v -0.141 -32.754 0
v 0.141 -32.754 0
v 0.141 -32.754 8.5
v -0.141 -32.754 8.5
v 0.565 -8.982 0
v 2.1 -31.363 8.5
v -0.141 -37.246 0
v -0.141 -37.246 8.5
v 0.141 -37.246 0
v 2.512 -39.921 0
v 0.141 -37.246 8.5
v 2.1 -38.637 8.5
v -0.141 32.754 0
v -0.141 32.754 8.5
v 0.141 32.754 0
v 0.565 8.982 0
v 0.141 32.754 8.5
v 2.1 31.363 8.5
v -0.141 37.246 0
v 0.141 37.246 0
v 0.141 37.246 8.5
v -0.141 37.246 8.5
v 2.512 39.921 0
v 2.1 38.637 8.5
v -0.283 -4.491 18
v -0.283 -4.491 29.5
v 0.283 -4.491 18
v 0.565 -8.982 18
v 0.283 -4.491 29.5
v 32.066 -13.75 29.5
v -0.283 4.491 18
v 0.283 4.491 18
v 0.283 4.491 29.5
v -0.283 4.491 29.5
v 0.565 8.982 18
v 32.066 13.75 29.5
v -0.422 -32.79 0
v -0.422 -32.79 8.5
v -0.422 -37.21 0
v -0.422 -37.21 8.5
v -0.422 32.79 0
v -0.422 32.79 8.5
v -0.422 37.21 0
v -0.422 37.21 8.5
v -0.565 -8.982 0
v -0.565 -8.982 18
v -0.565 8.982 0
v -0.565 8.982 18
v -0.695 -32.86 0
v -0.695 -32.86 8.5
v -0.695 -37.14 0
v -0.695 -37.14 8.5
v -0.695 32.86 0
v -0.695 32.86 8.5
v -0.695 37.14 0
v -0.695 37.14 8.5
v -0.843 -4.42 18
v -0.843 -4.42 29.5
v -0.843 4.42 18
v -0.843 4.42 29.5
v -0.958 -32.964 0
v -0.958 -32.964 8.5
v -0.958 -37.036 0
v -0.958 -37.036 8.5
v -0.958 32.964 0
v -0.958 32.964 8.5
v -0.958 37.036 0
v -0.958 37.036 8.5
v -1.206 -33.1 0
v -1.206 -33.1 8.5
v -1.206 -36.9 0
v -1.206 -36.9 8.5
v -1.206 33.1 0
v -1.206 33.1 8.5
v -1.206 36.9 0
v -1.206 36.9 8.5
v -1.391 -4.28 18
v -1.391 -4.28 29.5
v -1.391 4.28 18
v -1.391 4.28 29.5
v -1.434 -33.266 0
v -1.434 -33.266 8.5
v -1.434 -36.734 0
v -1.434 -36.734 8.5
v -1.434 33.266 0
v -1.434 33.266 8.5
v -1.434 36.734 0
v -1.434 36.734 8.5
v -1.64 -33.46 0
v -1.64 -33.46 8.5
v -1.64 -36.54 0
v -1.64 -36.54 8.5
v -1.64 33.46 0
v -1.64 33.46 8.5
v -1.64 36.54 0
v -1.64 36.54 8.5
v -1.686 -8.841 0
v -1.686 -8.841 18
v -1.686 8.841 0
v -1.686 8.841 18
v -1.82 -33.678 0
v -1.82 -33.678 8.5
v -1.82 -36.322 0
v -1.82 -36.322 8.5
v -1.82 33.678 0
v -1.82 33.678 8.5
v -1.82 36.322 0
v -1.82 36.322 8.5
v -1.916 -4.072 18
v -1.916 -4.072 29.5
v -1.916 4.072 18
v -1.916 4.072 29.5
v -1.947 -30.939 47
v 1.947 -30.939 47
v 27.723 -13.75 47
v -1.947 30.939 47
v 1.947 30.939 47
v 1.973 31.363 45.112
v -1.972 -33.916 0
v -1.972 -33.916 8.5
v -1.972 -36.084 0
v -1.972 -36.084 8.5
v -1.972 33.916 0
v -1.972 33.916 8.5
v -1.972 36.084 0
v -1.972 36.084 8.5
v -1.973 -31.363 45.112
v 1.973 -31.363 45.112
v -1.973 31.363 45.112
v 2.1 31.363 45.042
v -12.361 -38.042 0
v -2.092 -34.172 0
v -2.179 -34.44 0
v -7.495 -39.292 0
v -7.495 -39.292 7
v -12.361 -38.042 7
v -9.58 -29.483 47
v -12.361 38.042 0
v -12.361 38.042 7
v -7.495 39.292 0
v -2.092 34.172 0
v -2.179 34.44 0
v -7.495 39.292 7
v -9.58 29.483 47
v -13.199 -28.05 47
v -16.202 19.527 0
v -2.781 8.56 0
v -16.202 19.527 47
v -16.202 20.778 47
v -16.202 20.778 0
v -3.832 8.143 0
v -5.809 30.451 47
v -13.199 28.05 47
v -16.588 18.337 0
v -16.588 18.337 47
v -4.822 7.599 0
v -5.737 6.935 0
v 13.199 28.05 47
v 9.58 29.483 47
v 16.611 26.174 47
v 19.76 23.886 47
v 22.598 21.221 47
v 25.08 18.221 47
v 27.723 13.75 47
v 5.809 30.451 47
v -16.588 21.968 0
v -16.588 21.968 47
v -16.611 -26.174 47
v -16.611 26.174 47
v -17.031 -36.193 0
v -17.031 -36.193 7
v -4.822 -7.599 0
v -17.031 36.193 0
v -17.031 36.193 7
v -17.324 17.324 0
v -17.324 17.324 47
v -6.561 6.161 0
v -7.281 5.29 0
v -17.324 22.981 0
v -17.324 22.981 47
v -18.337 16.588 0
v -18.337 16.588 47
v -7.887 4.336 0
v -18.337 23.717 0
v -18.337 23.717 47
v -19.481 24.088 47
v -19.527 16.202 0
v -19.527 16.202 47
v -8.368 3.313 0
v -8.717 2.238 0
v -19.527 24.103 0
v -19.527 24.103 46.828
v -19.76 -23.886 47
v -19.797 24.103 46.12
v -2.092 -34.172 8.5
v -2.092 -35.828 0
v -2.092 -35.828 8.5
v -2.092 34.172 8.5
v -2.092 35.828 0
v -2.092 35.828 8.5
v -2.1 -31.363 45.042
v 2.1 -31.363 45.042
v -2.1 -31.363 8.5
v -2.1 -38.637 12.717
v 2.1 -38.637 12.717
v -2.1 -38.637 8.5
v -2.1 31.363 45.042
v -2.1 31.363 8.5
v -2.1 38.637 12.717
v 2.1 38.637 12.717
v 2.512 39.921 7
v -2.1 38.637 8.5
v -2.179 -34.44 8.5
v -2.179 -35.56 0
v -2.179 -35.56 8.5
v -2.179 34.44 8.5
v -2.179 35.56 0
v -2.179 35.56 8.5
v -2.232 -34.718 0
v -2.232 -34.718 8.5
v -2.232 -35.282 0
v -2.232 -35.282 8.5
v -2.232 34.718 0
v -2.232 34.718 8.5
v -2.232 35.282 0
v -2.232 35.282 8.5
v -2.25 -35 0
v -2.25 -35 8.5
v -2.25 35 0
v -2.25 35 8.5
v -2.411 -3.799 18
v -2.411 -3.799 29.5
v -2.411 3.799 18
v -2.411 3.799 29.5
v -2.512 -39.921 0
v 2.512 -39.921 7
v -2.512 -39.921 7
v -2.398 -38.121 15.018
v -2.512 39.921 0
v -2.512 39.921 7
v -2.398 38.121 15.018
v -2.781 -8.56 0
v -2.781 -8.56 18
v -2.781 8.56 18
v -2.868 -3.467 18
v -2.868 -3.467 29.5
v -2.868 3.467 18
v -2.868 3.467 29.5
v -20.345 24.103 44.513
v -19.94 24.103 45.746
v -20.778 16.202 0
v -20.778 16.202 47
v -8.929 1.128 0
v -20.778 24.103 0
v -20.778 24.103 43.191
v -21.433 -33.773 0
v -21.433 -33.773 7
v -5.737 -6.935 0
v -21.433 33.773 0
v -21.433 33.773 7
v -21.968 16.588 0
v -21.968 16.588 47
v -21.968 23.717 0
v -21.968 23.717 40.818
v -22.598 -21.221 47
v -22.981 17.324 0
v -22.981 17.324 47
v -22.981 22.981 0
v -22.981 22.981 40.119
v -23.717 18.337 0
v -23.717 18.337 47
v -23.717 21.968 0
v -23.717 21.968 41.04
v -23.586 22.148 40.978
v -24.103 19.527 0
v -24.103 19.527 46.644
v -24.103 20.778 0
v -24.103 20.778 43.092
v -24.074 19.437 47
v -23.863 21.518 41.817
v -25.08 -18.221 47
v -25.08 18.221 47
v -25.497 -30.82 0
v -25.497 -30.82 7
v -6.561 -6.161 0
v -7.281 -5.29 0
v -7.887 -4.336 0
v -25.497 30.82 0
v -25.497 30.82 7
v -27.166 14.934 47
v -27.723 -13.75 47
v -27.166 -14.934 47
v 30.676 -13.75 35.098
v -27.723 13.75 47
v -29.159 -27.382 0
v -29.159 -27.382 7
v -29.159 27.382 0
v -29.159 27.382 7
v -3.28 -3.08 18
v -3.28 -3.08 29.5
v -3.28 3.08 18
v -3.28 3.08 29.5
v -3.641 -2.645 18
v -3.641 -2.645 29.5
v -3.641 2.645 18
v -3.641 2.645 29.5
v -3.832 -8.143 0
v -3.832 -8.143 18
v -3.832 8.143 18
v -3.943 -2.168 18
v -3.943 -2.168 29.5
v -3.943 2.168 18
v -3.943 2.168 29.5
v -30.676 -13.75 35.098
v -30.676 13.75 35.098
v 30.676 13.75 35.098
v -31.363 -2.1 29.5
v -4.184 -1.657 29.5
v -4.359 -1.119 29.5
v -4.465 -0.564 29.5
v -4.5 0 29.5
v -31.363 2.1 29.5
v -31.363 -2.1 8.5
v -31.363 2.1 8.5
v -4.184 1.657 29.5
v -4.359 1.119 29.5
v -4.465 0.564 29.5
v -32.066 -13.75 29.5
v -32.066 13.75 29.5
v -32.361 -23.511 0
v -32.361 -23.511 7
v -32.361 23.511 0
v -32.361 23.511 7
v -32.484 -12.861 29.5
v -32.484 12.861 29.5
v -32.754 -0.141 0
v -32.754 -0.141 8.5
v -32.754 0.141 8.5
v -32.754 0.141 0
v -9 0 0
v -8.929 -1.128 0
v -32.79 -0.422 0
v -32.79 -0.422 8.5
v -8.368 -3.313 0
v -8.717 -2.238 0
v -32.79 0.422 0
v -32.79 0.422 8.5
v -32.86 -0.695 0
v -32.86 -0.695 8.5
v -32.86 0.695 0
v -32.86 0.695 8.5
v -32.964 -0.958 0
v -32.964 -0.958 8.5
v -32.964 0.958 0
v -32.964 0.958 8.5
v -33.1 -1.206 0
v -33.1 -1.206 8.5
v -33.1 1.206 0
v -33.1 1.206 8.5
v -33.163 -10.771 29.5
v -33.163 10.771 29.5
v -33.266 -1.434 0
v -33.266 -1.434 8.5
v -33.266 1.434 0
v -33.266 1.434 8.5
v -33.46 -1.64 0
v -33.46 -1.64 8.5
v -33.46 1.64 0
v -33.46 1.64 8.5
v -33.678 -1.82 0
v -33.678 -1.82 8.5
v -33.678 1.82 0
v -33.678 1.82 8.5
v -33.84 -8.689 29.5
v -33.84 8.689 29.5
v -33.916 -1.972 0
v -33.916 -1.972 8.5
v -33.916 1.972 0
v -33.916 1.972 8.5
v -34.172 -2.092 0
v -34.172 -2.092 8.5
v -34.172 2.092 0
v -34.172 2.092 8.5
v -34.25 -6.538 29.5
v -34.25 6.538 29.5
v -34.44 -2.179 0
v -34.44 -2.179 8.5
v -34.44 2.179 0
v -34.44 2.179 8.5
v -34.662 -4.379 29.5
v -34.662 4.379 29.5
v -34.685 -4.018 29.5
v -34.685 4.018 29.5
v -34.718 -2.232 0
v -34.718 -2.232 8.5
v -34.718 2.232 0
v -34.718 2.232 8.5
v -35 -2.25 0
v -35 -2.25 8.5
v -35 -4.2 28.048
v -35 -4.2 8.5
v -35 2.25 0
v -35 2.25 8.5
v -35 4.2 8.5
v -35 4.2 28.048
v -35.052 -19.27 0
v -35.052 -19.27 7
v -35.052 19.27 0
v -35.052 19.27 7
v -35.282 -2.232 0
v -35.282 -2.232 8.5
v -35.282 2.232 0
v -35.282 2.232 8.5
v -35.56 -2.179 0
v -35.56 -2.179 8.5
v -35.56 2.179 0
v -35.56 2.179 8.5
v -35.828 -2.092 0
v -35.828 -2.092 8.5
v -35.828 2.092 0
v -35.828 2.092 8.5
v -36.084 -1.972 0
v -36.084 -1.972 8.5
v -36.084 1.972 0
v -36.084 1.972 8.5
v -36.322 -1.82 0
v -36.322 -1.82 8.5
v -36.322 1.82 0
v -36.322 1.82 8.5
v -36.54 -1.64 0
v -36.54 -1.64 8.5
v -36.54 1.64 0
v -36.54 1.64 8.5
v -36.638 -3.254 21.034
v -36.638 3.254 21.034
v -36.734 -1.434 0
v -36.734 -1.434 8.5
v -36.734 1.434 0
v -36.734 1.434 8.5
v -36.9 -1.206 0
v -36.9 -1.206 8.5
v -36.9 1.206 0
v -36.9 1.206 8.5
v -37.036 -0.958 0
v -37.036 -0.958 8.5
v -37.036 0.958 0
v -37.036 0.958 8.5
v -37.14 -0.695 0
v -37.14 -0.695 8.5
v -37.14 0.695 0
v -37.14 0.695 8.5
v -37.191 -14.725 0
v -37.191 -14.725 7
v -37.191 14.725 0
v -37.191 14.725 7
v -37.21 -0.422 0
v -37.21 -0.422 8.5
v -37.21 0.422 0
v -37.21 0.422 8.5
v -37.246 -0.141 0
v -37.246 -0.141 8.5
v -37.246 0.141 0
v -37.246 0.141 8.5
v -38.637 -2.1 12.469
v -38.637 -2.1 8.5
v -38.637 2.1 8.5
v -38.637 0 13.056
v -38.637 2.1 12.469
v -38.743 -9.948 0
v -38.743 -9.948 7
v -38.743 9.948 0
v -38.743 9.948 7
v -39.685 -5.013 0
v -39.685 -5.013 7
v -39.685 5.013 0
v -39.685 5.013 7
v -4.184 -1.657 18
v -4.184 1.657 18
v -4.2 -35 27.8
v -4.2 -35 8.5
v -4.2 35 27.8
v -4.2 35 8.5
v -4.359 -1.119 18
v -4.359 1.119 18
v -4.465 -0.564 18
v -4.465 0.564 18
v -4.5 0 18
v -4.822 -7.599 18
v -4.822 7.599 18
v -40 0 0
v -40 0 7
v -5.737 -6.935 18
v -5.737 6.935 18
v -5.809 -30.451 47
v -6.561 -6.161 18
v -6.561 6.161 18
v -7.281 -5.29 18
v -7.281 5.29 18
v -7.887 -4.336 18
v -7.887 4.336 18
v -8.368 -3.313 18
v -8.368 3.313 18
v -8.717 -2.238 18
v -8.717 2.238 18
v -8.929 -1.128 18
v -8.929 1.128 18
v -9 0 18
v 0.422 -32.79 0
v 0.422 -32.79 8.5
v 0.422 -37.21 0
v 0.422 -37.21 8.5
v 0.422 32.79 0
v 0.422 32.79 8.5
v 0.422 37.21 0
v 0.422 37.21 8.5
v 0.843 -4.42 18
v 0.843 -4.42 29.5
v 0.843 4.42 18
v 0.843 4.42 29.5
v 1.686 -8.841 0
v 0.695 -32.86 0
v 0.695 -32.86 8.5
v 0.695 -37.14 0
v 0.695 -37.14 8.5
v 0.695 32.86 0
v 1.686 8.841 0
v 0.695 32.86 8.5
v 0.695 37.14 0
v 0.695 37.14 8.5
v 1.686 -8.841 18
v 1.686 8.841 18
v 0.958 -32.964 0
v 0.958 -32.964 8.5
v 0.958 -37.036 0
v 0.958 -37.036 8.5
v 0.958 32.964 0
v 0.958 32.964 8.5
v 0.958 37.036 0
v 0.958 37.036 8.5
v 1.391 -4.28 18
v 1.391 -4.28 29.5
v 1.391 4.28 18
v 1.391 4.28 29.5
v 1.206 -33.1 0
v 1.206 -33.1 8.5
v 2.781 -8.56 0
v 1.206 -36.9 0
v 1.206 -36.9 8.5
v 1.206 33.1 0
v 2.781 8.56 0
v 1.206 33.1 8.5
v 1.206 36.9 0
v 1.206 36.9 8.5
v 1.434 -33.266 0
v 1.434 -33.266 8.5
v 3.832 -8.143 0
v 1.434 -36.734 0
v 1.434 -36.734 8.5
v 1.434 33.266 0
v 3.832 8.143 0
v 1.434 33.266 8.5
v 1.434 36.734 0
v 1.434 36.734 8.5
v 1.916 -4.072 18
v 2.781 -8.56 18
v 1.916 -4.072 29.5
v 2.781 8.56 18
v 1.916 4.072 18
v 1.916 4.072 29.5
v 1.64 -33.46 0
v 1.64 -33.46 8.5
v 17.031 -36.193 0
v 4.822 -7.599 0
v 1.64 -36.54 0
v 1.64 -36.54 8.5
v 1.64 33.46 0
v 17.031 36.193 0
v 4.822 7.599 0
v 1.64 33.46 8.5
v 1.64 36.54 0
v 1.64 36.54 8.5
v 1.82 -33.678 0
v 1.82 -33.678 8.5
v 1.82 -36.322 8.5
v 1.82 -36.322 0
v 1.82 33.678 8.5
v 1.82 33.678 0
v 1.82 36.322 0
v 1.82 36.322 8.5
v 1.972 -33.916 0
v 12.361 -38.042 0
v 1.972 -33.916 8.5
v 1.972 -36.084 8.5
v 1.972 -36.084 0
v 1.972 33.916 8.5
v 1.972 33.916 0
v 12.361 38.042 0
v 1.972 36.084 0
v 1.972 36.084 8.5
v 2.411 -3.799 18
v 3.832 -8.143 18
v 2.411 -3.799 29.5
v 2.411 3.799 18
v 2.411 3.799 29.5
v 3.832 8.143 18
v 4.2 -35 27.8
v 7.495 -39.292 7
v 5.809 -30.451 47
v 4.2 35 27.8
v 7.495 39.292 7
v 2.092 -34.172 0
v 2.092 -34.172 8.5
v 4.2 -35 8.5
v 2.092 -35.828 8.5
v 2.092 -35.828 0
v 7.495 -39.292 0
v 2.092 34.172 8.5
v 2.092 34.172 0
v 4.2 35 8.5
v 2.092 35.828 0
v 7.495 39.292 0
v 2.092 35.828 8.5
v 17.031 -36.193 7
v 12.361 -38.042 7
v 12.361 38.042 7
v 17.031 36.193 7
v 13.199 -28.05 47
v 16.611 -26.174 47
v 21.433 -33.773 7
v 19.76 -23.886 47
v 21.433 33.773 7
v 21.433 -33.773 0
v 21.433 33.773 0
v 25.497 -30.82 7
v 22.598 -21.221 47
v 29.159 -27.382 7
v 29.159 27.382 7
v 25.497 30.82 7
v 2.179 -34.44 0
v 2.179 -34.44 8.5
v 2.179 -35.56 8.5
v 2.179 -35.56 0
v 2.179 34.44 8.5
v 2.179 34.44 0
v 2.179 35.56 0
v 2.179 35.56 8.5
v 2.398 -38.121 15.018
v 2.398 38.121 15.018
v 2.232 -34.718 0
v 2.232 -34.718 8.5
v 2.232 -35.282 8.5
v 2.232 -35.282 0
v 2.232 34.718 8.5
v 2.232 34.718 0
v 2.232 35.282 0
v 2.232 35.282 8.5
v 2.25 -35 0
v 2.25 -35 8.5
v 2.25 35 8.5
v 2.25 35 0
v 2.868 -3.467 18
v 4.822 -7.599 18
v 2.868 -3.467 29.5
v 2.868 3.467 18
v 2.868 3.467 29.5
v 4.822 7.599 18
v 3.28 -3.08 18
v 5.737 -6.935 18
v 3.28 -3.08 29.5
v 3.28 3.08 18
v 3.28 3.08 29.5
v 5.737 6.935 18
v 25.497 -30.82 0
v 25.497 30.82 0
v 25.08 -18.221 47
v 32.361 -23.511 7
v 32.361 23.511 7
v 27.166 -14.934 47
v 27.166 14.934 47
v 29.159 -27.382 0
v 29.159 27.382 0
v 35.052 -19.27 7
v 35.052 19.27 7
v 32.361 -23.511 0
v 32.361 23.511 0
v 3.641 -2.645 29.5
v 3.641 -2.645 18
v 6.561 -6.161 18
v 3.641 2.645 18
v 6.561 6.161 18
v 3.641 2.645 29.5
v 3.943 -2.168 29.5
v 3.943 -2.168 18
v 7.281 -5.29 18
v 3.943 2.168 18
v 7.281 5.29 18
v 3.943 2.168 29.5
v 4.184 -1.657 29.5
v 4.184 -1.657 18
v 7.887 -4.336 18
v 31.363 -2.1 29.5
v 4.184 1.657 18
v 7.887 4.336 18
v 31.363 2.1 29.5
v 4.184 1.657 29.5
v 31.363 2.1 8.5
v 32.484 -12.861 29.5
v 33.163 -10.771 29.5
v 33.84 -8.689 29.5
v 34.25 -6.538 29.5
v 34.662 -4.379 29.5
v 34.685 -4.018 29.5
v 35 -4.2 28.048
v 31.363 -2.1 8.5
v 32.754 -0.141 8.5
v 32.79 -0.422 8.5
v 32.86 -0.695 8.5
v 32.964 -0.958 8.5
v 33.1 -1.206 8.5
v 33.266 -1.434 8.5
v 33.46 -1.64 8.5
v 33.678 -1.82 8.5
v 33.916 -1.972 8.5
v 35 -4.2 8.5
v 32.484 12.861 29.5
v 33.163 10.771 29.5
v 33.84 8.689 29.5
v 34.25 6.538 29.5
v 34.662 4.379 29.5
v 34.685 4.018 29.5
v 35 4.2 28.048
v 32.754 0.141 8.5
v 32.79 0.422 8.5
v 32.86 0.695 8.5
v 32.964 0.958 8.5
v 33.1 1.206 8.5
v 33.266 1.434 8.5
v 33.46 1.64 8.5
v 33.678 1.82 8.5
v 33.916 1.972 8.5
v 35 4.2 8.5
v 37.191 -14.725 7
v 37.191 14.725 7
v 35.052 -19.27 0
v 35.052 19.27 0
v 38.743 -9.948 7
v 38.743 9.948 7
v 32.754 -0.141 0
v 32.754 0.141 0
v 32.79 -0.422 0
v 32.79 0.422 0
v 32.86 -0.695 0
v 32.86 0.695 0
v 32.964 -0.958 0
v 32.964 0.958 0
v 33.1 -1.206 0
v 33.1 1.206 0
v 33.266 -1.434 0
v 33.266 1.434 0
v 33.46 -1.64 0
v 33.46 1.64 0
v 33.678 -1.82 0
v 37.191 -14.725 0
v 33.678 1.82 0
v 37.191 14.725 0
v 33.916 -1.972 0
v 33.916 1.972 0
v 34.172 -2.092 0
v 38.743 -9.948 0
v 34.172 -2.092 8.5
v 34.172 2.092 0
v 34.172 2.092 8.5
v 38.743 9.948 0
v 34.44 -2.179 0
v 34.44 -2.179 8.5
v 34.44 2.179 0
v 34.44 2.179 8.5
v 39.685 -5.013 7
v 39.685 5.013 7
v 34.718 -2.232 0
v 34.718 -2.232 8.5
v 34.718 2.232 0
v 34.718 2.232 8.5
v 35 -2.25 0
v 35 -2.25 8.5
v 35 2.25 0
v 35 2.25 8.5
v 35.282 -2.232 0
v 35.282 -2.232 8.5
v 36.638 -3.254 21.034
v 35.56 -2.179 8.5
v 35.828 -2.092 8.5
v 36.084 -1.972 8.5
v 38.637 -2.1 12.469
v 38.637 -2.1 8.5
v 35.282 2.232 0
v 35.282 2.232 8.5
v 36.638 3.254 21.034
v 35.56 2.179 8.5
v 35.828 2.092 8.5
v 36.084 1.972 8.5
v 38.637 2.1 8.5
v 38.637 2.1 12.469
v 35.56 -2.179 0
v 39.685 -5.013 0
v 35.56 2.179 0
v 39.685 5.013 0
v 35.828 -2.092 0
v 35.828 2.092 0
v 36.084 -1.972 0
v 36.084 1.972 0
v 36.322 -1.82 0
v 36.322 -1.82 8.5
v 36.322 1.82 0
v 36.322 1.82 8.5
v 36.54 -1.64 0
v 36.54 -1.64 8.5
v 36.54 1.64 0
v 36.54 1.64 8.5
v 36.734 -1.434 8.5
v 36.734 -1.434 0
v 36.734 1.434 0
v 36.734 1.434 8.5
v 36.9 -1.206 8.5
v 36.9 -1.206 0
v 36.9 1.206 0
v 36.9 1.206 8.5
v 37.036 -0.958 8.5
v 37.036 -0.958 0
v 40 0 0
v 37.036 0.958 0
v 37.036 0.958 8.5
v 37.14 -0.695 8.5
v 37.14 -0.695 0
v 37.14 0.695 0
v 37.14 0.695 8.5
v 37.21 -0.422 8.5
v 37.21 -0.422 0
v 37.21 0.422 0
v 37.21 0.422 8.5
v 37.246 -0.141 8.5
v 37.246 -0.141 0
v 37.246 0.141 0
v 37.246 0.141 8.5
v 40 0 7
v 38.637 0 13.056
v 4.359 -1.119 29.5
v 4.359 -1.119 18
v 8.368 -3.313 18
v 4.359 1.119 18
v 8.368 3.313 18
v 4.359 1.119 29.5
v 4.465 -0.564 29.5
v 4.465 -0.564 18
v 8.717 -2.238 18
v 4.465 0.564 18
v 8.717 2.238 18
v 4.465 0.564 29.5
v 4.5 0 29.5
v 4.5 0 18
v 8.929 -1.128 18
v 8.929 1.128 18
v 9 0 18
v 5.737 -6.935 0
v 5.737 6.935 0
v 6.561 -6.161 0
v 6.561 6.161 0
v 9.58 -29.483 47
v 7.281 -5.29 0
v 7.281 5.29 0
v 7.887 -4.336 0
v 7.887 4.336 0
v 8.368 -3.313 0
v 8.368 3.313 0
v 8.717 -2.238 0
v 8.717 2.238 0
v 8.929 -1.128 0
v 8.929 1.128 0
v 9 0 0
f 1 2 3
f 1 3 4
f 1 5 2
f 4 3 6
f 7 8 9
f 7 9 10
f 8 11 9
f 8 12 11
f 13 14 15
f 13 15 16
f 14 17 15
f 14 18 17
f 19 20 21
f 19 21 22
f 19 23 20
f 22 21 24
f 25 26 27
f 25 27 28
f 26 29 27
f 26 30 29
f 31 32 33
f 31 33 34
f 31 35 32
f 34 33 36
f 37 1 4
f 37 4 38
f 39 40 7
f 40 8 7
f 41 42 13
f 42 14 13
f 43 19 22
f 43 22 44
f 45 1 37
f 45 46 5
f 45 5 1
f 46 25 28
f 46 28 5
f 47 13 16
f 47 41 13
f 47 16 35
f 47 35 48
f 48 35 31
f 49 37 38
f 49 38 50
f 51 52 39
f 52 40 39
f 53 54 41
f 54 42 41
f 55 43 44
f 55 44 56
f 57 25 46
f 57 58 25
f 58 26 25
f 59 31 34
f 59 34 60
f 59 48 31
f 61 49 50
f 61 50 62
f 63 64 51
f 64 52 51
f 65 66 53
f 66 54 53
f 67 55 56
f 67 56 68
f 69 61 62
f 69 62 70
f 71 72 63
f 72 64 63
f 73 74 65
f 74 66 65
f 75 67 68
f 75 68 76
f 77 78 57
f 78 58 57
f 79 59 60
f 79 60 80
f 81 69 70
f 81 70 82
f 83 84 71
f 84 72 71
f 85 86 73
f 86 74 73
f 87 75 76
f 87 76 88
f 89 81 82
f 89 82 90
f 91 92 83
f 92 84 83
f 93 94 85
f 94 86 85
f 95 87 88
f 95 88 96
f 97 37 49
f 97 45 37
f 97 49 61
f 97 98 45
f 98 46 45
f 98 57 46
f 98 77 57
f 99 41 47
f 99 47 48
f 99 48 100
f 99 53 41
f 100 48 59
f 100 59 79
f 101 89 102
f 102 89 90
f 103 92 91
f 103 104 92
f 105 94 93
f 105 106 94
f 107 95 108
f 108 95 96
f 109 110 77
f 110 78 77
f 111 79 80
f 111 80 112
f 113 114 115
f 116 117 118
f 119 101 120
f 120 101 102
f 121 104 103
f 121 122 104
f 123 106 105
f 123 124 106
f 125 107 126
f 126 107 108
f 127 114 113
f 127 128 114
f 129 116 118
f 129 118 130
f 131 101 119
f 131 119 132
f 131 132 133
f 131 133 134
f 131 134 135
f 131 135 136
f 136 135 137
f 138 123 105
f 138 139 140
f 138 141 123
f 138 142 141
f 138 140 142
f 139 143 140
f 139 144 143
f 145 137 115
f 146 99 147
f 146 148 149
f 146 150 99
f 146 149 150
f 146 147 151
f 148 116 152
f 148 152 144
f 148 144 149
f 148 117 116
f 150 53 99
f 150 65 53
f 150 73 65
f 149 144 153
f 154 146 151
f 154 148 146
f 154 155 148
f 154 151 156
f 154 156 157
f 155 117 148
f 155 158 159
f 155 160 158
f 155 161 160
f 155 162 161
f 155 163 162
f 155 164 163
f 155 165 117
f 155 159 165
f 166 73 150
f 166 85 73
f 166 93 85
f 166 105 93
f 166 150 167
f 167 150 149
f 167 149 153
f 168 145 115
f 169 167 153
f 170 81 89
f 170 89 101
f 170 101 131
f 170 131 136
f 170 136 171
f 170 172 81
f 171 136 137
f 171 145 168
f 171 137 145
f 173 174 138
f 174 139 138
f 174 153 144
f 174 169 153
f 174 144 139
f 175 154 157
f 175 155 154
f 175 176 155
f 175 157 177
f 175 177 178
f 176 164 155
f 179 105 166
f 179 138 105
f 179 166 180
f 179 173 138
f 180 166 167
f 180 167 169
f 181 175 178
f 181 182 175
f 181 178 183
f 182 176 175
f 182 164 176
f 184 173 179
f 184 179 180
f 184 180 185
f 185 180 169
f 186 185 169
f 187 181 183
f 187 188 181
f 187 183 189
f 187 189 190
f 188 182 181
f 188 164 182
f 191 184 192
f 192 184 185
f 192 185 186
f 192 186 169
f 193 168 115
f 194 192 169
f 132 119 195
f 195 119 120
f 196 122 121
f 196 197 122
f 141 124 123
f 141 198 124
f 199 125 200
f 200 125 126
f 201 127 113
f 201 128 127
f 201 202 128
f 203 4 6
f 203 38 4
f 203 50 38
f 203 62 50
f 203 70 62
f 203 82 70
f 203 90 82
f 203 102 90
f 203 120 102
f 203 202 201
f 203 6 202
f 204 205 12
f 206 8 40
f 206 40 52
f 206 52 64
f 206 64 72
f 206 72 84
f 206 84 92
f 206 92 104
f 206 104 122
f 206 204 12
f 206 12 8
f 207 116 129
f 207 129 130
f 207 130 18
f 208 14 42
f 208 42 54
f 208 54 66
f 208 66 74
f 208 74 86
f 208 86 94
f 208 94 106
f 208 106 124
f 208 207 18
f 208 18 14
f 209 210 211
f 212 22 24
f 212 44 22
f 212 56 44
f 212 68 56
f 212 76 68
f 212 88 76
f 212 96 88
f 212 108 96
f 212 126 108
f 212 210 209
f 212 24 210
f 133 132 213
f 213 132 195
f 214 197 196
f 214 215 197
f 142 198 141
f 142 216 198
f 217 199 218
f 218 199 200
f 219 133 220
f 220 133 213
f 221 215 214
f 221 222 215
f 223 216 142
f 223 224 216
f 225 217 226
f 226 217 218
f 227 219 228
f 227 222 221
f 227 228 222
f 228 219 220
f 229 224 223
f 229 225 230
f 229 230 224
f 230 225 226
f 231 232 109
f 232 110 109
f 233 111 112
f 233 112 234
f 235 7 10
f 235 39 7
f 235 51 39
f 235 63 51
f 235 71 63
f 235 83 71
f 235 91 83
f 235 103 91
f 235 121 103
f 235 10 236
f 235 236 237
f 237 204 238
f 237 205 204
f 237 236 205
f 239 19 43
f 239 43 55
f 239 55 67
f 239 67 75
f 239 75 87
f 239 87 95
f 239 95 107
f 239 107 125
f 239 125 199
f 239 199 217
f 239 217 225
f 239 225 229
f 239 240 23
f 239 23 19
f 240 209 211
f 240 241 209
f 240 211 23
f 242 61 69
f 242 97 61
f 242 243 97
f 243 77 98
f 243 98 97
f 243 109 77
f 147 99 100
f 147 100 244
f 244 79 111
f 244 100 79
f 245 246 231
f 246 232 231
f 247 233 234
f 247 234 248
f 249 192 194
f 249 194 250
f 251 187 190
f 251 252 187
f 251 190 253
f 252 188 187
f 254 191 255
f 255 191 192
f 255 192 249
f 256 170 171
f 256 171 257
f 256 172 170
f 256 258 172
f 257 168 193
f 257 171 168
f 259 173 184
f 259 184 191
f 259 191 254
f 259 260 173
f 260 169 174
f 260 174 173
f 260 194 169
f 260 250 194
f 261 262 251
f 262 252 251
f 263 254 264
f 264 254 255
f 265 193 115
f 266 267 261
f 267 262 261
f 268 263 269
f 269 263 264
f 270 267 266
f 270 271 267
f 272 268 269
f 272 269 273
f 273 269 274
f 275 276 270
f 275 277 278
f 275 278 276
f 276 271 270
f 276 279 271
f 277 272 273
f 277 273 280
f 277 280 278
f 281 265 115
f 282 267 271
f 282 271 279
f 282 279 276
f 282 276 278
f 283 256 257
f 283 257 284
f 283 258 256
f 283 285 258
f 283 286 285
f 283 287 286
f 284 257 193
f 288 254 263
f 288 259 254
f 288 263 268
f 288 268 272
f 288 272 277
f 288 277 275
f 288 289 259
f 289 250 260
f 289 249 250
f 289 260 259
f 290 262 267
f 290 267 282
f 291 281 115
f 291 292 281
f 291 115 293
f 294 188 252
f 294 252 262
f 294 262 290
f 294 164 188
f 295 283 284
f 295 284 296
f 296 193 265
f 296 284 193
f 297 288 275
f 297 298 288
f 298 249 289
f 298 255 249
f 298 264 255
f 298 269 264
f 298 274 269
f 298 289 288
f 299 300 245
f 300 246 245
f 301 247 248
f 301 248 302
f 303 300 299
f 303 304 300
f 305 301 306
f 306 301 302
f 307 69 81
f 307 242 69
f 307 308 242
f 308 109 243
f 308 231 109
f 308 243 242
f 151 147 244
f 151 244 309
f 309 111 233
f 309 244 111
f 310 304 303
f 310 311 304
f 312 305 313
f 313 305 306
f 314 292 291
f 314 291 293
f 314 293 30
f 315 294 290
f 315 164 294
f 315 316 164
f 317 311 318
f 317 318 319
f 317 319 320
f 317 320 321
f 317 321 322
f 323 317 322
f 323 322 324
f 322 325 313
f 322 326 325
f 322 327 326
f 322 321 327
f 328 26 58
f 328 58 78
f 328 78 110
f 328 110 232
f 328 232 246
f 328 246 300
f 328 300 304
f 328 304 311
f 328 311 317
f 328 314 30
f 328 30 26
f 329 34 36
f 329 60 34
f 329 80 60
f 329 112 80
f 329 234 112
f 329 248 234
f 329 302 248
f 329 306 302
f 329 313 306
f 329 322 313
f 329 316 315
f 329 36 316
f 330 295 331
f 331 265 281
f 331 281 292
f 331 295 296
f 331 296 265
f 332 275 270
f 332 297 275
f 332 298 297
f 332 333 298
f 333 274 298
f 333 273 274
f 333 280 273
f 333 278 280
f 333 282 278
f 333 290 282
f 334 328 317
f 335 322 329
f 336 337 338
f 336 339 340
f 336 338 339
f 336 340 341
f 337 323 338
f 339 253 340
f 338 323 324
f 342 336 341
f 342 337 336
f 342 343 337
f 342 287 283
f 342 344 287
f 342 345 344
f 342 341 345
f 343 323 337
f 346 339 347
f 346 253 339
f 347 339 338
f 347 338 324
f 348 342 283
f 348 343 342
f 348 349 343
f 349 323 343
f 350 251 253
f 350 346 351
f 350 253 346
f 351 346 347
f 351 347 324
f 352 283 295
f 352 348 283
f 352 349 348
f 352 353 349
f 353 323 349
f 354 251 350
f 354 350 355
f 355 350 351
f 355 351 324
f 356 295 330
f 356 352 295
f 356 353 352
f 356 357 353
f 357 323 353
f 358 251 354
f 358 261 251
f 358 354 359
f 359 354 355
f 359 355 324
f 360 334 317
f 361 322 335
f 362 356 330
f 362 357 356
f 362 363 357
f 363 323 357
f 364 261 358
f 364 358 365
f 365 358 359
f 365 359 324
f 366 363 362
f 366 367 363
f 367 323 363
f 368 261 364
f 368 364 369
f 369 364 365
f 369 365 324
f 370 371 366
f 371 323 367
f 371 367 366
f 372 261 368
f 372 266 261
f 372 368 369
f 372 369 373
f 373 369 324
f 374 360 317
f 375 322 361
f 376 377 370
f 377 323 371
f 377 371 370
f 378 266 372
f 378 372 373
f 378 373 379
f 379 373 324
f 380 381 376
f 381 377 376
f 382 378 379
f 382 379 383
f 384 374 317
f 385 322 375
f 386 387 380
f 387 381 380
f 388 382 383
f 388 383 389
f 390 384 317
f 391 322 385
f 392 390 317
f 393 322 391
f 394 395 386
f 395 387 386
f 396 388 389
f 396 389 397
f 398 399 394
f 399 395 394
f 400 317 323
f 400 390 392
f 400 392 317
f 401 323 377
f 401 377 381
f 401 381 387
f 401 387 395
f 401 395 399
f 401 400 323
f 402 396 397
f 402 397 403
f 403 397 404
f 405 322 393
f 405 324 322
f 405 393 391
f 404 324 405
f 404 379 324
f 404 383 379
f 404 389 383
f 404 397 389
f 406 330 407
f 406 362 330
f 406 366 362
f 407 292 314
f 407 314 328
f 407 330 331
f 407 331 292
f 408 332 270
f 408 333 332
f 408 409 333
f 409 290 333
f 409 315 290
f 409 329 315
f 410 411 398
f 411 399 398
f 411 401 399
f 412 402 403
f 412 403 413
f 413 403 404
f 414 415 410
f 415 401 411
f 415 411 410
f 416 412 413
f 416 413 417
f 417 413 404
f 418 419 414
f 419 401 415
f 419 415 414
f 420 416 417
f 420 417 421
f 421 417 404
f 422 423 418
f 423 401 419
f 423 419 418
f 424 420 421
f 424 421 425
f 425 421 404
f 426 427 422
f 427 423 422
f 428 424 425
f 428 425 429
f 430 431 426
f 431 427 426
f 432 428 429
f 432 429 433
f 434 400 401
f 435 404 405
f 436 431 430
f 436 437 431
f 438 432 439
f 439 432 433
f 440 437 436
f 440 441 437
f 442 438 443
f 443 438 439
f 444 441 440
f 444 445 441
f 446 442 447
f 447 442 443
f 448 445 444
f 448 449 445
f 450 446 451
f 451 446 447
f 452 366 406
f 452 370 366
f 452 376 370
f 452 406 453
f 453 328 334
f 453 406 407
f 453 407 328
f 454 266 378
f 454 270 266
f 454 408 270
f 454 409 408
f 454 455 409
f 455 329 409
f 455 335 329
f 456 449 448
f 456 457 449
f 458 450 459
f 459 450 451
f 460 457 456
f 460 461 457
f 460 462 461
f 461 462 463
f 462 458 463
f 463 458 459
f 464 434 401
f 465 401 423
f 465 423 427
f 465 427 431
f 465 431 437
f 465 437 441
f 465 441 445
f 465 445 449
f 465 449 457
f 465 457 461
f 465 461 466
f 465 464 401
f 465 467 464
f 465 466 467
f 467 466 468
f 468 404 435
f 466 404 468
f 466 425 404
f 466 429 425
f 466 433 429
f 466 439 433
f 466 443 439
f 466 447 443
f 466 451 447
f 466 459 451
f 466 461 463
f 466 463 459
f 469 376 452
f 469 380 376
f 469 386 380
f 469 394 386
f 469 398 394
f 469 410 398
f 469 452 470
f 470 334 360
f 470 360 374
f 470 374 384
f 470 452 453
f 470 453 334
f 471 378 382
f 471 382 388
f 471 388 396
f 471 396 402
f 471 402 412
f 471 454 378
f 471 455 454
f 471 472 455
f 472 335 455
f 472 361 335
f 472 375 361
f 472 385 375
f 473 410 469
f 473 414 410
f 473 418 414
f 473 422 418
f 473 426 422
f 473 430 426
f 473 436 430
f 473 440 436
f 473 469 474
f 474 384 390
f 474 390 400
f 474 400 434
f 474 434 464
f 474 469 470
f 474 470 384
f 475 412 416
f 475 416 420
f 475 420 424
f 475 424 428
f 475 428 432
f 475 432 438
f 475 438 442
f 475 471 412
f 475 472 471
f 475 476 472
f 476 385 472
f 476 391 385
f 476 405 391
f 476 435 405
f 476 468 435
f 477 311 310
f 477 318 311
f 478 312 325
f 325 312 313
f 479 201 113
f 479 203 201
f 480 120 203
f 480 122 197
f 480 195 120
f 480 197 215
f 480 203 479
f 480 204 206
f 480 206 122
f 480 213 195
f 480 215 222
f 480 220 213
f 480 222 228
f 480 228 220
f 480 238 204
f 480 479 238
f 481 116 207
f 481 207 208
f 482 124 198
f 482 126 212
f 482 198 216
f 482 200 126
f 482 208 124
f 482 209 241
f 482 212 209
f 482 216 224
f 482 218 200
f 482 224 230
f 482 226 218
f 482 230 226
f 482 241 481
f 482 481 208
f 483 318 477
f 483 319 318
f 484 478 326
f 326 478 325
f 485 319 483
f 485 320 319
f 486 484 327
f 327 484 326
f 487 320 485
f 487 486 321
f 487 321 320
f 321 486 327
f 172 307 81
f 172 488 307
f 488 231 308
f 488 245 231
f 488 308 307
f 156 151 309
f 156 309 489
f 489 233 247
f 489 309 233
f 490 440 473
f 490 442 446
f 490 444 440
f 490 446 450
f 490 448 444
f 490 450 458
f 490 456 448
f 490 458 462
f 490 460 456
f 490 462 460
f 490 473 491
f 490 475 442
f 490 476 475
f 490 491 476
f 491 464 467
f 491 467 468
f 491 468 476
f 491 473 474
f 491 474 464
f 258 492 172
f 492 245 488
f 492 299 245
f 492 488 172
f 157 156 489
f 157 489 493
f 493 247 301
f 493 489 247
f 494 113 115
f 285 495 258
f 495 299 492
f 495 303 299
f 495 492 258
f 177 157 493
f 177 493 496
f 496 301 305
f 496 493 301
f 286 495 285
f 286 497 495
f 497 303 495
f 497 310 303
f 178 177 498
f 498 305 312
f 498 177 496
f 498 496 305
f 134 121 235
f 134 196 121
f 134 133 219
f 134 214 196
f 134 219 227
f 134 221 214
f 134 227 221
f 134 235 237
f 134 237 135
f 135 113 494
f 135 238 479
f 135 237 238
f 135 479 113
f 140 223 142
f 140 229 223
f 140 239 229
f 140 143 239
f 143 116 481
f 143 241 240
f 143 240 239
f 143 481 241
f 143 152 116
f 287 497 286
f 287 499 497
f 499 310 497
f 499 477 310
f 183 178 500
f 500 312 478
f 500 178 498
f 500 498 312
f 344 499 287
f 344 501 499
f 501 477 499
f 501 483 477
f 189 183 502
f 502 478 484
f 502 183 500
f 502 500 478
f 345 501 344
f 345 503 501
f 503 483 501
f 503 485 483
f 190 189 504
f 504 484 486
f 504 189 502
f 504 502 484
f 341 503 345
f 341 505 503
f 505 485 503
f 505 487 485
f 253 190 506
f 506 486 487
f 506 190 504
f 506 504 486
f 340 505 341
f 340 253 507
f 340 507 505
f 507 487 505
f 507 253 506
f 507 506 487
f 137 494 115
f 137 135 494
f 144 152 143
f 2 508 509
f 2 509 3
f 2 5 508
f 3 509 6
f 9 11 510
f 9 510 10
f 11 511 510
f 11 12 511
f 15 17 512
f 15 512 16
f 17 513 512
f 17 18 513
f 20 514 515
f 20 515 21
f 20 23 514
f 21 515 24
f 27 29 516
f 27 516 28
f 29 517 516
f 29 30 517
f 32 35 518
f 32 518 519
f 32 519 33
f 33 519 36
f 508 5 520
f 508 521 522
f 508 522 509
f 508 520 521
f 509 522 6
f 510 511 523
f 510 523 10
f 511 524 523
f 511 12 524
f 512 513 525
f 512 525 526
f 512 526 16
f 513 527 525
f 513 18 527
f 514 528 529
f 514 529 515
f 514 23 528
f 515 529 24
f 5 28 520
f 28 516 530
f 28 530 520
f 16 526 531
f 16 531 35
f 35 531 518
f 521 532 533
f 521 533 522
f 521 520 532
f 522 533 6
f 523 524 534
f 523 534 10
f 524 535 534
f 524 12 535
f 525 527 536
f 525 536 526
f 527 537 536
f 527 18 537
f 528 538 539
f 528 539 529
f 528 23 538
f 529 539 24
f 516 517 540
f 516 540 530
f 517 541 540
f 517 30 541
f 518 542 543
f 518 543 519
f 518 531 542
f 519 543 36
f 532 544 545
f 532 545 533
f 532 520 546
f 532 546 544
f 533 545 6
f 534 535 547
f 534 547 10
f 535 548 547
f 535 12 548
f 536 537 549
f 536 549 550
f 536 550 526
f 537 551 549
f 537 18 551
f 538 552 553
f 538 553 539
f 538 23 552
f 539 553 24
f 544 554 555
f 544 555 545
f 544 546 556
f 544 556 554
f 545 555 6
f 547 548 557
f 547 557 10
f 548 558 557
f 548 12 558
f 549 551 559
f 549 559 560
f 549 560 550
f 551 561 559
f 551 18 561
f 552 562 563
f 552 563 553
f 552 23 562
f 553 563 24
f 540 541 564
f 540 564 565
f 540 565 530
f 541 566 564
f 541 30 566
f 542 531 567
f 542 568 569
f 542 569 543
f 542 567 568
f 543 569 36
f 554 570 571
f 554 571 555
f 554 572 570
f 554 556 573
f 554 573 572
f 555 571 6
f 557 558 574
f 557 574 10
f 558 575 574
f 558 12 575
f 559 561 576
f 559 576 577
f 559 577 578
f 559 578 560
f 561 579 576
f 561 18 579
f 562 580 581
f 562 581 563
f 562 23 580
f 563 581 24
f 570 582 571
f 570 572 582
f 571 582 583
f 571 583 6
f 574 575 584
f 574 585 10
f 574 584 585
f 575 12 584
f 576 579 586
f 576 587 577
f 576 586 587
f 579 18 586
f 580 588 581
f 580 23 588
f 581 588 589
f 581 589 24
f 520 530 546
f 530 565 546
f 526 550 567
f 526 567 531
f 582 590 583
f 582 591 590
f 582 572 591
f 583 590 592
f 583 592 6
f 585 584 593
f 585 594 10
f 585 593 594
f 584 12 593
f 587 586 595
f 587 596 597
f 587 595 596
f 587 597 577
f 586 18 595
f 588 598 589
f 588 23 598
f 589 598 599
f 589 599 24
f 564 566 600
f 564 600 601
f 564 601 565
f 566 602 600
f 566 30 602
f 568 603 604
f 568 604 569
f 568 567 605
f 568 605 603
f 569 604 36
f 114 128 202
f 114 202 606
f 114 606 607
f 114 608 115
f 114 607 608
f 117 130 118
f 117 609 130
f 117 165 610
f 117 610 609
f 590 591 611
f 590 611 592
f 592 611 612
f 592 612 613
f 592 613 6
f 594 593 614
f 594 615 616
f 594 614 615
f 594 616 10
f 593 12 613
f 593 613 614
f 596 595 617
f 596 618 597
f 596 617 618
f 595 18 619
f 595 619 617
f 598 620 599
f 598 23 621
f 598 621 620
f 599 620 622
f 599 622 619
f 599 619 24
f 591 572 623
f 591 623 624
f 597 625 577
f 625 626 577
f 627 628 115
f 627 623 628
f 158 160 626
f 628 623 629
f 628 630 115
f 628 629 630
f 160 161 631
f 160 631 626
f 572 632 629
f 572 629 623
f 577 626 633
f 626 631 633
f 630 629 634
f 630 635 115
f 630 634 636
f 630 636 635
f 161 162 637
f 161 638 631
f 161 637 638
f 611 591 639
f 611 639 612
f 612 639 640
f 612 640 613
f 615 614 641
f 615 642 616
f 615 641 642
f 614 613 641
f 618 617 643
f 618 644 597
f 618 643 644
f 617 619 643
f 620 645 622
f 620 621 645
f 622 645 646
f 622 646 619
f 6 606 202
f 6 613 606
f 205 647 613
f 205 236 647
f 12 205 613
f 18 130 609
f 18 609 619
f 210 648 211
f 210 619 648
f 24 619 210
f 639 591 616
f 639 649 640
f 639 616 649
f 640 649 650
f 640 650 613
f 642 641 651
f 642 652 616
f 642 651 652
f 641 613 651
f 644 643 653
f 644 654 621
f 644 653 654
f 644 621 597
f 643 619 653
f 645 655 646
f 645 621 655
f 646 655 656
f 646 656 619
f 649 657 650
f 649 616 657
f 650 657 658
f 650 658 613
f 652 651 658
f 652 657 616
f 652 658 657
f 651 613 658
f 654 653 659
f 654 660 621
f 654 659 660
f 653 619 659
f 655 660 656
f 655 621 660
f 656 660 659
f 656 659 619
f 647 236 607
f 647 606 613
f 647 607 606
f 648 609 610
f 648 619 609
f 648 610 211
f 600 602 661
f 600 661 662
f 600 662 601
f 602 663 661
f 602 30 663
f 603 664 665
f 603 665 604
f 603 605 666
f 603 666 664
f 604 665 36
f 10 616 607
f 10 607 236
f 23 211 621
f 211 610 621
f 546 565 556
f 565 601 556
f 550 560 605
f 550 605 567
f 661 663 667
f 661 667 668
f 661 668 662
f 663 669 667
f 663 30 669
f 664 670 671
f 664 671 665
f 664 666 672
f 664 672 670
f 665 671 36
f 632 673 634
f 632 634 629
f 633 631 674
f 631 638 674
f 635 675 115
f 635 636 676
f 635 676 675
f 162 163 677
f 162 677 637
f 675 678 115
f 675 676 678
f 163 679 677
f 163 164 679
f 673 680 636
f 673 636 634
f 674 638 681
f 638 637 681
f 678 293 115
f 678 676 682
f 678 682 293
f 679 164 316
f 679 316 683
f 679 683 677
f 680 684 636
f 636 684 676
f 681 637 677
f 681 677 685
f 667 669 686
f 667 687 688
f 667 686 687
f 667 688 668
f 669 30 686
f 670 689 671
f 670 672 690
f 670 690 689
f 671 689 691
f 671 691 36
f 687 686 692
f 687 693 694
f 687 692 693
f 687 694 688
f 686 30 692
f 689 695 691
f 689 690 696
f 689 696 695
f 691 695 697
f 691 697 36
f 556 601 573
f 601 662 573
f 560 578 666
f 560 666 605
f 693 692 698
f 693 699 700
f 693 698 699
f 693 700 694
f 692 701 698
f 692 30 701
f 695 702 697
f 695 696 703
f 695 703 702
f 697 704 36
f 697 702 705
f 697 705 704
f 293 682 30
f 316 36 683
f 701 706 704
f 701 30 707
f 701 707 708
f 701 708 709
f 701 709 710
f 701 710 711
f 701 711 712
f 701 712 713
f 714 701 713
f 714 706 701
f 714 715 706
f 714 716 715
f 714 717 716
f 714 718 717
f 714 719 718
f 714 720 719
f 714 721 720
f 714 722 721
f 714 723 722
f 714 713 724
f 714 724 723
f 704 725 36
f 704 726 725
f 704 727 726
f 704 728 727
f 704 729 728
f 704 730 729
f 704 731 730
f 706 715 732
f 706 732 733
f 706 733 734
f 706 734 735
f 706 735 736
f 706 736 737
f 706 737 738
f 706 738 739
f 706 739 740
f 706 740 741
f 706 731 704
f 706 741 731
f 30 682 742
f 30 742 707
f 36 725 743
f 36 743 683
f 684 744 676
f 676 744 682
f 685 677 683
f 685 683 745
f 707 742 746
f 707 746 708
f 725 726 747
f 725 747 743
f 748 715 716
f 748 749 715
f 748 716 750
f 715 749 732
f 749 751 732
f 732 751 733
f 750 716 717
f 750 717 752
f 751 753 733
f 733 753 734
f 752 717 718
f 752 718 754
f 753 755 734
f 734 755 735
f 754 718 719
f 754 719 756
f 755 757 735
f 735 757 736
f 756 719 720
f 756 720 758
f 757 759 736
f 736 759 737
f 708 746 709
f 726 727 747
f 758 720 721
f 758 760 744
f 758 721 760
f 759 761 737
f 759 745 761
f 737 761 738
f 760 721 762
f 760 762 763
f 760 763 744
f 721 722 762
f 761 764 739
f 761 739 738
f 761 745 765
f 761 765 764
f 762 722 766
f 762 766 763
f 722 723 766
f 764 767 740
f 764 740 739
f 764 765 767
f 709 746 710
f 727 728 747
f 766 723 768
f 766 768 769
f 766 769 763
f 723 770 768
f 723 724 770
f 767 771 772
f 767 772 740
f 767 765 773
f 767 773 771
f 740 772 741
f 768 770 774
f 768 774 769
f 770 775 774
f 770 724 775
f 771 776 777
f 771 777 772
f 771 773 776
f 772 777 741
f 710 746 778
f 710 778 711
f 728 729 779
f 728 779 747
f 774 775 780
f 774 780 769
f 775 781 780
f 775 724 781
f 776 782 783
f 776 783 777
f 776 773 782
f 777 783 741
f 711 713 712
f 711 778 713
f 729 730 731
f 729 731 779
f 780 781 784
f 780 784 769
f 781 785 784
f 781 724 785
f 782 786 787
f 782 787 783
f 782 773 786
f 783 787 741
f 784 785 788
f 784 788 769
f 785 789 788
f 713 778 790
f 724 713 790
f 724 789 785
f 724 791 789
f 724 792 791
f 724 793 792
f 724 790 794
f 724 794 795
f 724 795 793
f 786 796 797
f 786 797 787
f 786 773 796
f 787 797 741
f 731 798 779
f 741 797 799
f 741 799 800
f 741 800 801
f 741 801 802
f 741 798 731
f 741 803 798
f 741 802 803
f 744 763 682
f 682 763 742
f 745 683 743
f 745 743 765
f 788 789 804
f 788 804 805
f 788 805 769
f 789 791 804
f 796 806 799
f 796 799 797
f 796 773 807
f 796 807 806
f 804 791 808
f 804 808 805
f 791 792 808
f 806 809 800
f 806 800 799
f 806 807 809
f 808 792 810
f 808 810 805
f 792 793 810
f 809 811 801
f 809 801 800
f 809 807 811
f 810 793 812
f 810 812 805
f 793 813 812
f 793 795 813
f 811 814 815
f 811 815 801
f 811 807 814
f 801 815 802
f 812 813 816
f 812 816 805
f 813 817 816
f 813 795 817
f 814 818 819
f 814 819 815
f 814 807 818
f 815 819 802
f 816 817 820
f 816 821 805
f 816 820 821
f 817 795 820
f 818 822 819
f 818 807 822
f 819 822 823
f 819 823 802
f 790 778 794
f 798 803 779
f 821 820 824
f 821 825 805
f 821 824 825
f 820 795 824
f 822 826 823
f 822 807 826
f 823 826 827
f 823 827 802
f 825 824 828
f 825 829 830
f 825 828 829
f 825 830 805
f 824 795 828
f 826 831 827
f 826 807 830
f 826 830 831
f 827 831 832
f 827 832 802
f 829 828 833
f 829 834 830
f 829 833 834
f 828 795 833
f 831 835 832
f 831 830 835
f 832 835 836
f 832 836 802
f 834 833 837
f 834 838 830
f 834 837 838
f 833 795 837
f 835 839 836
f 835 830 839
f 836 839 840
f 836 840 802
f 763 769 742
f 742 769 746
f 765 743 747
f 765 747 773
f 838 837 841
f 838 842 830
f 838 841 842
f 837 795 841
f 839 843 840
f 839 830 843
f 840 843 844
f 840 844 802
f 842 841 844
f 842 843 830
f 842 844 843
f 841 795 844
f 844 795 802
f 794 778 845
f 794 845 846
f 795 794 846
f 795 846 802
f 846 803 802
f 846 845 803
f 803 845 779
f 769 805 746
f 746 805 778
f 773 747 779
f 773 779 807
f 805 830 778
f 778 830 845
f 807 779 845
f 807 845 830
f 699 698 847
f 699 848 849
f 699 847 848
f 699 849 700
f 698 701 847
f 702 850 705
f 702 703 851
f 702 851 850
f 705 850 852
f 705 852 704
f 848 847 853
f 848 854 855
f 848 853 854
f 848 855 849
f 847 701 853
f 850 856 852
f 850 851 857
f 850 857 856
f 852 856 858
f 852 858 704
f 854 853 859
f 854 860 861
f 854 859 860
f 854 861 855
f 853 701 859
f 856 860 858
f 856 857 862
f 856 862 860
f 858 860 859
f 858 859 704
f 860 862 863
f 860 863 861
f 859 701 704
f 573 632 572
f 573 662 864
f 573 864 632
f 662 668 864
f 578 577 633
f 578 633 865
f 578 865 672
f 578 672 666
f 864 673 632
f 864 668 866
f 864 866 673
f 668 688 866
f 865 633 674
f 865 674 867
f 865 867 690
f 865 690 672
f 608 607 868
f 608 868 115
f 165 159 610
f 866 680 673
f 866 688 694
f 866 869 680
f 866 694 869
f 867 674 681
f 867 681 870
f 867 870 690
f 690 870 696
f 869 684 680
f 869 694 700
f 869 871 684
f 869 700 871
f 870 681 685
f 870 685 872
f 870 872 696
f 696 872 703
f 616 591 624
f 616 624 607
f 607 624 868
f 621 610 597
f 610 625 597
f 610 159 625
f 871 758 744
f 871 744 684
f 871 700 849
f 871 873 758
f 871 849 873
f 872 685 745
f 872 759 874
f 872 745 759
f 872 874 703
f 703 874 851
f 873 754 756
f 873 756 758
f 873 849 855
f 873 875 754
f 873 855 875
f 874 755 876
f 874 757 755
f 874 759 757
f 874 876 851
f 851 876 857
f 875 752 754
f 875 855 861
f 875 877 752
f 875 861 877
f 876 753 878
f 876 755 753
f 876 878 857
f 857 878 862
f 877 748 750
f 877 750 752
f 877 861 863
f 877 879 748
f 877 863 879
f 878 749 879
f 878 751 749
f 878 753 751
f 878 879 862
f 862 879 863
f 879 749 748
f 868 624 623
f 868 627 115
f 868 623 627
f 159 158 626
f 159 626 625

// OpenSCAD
// file: lib/naca4.scad
// Naca4.scad - library for parametric airfoils of 4 digit NACA series
// Code: Rudolf Huttary, Berlin 
// June 2015
// commercial use prohibited


// general use: for more examples refer to sampler.scad
// naca = naca digits or 3el vector  (default = 12 or [0, 0, .12])
// L    = chord length [mm]      (default= 100)
// N    = # sample points        (default= 81)
// h    = height [mm]            (default= 1)
// open = close at the thin end? (default = true)
// two equivalent example calls
 airfoil(naca = 2408, L = 60, N=1001, h = 30, open = false); 
// airfoil(naca = [.2, .4, .32], L = 60, N=1001, h = 30, open = false); 

module help()
{
  echo(str("\n\nList of signatures in lib:\n=================\n", 
  "module airfoil(naca=2412, L = 100, N = 81, h = 1, open = false) - renders airfoil object\n", 
  "module airfoil(naca=[.2, .4, .12], L = 100, N = 81, h = 1, open = false) - renders airfoil object using percentage for camber,  camber distance and thicknes\n", 
  "function airfoil_data(naca=12, L = 100, N = 81, open = false)\n",
  "=================\n")); 
}

help(); 
// this is the object
module airfoil(naca=12, L = 100, N = 81, h = 1, open = false)
{
  linear_extrude(height = h)
  polygon(points = airfoil_data(naca, L, N, open)); 
}

module hollow_airfoil(lnaca=12, L = 100, N = 81, h = 1, open = false, wall_thickness = 1)
{
    if (open){
        linear_extrude(height = h)

        if (wall_thickness>0){
            difference(){
                polygon(points = airfoil_data(naca, L, N, false));
                offset(delta = - wall_thickness, chamfer = false) polygon(points = airfoil_data(naca, L, N, open = false));
            }
        }
        else{
            difference(){
                offset(delta = - wall_thickness, chamfer = false) polygon(points = airfoil_data(naca, L, N, open = false));
                polygon(points = airfoil_data(naca, L, N, false));
            }
        }
    }
    else{

        linear_extrude(height = abs(wall_thickness))
            polygon(points = airfoil_data(naca, L, N, false)); 

        linear_extrude(height = h)
            difference(){
                polygon(points = airfoil_data(naca, L, N, open));
                offset(delta = - wall_thickness) polygon(points = airfoil_data(naca, L, N, open = false));
            }

        translate([0,0, h - wall_thickness])
            linear_extrude(height = abs(wall_thickness))
                polygon(points = airfoil_data(naca, L, N, false)); 

    }
}


// this is the main function providing the airfoil data
function airfoil_data(naca=12, L = 100, N = 81, open = false) = 
  let(Na = len(naca)!=3?NACA(naca):naca)
  let(A = [.2969, -0.126, -.3516, .2843, open?-0.1015:-0.1036])
  [for (b=[-180:360/(N):179.99]) 
    let (x = (1-cos(b))/2)  
    let(yt = sign(b)*Na[2]/.2*(A*[sqrt(x), x, x*x, x*x*x, x*x*x*x])) 
    Na[0]==0?L*[x, yt]:L*camber(x, yt, Na[0], Na[1], sign(b))];  


function trailing_edge_angle(naca=12, open = false) = 
  let(Na = len(naca)!=3?NACA(naca):naca)
  let(A = [.2969, -0.126, -.3516, .2843, open?-0.1015:-0.1036])
  let (x =0.999)  // set x near to airfoil trailing edge
  let(yt = Na[2]/.2*(A*[sqrt(x), x, x*x, x*x*x, x*x*x*x])) // calculate distance from x-axis at previously set position
  atan2(yt,1-x);  // calculate angle of triangle between end of airfoil. The triange height corresponds to previously calculated distance from x-axis

function surface_angle(x = 0.5, naca=12, open = false) = 
  let(Na = len(naca)!=3?NACA(naca):naca)
  let(A = [0.2969, -0.126, -0.3516, 0.2843, open?-0.1015:-0.1036])
  let(dy = Na[2]/0.2*(A*[(1/2)*(1/sqrt(x)), 1, 2*x, 3*x*x, 4*x*x*x])) // calculate derivative of airfoil function at the x point
  atan(dy);  // calculate  the angle from function derivative

function surface_distance(x = 0.5, naca=12, open = false) = 
  let(Na = len(naca)!=3?NACA(naca):naca)
  let(A = [0.2969, -0.126, -0.3516, 0.2843, open?-0.1015:-0.1036])
  Na[2]/.2*(A*[sqrt(x), x, x*x, x*x*x, x*x*x*x]); // calculate distance from x-axis at previously set position

// helper functions
function NACA(naca) = 
  let (M = floor(naca/1000))
  let (P = floor((naca-M*1000)/100)) 
  [M/100, P/10, floor(naca-M*1000-P*100)/100];  

function camber(x, y, M, P, upper) = 
  let(yc = (x<P)?M/P/P*(2*P*x-x*x): M/(1-P)/(1-P)*(1 - 2*P + 2*P*x -x*x))
  let(dy = (x<P)?2*M/P/P*(P-x):2*M/(1-P)/(1-P)*(P-x))
  let(th = atan(dy))
  [upper ? x - y*sin(th):x + y*sin(th), upper ? yc + y*cos(th):yc - y*cos(th)];
// main file
use <./lib/naca4.scad>
include <../Parameters.scad>
draft = true;

$fs = draft?50:100;
//$fa  = 10;
 

magnet_d = 80;

cylinder_height = magnet_d/2;

module 888_3008(draft){    /////// 1. díl (AZ, YAW)

    difference(){

        union (){
            cylinder(d = magnet_d, h = g3_8_magnet_wall_thickness, $fn=draft?50:100);
            translate([0,0,g3_8_magnet_wall_thickness])
                cylinder(d1 = magnet_d, d2 = g3_7_width, h=cylinder_height, $fn=draft?50:100);
        }

        // středový šroub pro uchycení k držáku
        translate([0,0,g3_8_magnet_wall_thickness])
            cylinder(d=M8_screw_diameter, h = cylinder_height, $fn=draft?50:100);
    
        translate([-g3_7_width, -(g3_7_height+ global_clearance)/2, cylinder_height + g3_8_magnet_wall_thickness - 10 - M8_nut_height])
            cube([2*g3_7_width, g3_7_height + global_clearance, g3_7_height]);

        // vybrání pro hlavu šroubu a podložku
        cylinder(d = bearing_efsm_08_db, h = cylinder_height + g3_8_magnet_wall_thickness - 10 - M8_nut_height - (30 - 10 - M8_nut_height - 2*global_clearance), $fn =  draft ? 50 :100);
        
        // diry pro pridelani loziska
        for (i=[0:3]) rotate([0, 0, 90*i]){
            translate([0, 70/2, -global_clearance/2])
                cylinder(h=cylinder_height+global_clearance, d = M4_screw_diameter, $fn=draft? 50:100);
            
            translate([0, 70/2, -M5_nut_height-0.5+g3_8_pocket_wall])
               cylinder(h=cylinder_height+global_clearance, d = M4_nut_diameter, $fn = 6);
        }

        rotate([0,0,45])
            translate([0, 57/2,-1])
               cylinder(h = 2*cylinder_height, d = 8, $fn = 20);


    }
}

difference(){
888_3008(draft);
//translate([0,0,-1]) rotate([0,0,45]) cube(200);
}
